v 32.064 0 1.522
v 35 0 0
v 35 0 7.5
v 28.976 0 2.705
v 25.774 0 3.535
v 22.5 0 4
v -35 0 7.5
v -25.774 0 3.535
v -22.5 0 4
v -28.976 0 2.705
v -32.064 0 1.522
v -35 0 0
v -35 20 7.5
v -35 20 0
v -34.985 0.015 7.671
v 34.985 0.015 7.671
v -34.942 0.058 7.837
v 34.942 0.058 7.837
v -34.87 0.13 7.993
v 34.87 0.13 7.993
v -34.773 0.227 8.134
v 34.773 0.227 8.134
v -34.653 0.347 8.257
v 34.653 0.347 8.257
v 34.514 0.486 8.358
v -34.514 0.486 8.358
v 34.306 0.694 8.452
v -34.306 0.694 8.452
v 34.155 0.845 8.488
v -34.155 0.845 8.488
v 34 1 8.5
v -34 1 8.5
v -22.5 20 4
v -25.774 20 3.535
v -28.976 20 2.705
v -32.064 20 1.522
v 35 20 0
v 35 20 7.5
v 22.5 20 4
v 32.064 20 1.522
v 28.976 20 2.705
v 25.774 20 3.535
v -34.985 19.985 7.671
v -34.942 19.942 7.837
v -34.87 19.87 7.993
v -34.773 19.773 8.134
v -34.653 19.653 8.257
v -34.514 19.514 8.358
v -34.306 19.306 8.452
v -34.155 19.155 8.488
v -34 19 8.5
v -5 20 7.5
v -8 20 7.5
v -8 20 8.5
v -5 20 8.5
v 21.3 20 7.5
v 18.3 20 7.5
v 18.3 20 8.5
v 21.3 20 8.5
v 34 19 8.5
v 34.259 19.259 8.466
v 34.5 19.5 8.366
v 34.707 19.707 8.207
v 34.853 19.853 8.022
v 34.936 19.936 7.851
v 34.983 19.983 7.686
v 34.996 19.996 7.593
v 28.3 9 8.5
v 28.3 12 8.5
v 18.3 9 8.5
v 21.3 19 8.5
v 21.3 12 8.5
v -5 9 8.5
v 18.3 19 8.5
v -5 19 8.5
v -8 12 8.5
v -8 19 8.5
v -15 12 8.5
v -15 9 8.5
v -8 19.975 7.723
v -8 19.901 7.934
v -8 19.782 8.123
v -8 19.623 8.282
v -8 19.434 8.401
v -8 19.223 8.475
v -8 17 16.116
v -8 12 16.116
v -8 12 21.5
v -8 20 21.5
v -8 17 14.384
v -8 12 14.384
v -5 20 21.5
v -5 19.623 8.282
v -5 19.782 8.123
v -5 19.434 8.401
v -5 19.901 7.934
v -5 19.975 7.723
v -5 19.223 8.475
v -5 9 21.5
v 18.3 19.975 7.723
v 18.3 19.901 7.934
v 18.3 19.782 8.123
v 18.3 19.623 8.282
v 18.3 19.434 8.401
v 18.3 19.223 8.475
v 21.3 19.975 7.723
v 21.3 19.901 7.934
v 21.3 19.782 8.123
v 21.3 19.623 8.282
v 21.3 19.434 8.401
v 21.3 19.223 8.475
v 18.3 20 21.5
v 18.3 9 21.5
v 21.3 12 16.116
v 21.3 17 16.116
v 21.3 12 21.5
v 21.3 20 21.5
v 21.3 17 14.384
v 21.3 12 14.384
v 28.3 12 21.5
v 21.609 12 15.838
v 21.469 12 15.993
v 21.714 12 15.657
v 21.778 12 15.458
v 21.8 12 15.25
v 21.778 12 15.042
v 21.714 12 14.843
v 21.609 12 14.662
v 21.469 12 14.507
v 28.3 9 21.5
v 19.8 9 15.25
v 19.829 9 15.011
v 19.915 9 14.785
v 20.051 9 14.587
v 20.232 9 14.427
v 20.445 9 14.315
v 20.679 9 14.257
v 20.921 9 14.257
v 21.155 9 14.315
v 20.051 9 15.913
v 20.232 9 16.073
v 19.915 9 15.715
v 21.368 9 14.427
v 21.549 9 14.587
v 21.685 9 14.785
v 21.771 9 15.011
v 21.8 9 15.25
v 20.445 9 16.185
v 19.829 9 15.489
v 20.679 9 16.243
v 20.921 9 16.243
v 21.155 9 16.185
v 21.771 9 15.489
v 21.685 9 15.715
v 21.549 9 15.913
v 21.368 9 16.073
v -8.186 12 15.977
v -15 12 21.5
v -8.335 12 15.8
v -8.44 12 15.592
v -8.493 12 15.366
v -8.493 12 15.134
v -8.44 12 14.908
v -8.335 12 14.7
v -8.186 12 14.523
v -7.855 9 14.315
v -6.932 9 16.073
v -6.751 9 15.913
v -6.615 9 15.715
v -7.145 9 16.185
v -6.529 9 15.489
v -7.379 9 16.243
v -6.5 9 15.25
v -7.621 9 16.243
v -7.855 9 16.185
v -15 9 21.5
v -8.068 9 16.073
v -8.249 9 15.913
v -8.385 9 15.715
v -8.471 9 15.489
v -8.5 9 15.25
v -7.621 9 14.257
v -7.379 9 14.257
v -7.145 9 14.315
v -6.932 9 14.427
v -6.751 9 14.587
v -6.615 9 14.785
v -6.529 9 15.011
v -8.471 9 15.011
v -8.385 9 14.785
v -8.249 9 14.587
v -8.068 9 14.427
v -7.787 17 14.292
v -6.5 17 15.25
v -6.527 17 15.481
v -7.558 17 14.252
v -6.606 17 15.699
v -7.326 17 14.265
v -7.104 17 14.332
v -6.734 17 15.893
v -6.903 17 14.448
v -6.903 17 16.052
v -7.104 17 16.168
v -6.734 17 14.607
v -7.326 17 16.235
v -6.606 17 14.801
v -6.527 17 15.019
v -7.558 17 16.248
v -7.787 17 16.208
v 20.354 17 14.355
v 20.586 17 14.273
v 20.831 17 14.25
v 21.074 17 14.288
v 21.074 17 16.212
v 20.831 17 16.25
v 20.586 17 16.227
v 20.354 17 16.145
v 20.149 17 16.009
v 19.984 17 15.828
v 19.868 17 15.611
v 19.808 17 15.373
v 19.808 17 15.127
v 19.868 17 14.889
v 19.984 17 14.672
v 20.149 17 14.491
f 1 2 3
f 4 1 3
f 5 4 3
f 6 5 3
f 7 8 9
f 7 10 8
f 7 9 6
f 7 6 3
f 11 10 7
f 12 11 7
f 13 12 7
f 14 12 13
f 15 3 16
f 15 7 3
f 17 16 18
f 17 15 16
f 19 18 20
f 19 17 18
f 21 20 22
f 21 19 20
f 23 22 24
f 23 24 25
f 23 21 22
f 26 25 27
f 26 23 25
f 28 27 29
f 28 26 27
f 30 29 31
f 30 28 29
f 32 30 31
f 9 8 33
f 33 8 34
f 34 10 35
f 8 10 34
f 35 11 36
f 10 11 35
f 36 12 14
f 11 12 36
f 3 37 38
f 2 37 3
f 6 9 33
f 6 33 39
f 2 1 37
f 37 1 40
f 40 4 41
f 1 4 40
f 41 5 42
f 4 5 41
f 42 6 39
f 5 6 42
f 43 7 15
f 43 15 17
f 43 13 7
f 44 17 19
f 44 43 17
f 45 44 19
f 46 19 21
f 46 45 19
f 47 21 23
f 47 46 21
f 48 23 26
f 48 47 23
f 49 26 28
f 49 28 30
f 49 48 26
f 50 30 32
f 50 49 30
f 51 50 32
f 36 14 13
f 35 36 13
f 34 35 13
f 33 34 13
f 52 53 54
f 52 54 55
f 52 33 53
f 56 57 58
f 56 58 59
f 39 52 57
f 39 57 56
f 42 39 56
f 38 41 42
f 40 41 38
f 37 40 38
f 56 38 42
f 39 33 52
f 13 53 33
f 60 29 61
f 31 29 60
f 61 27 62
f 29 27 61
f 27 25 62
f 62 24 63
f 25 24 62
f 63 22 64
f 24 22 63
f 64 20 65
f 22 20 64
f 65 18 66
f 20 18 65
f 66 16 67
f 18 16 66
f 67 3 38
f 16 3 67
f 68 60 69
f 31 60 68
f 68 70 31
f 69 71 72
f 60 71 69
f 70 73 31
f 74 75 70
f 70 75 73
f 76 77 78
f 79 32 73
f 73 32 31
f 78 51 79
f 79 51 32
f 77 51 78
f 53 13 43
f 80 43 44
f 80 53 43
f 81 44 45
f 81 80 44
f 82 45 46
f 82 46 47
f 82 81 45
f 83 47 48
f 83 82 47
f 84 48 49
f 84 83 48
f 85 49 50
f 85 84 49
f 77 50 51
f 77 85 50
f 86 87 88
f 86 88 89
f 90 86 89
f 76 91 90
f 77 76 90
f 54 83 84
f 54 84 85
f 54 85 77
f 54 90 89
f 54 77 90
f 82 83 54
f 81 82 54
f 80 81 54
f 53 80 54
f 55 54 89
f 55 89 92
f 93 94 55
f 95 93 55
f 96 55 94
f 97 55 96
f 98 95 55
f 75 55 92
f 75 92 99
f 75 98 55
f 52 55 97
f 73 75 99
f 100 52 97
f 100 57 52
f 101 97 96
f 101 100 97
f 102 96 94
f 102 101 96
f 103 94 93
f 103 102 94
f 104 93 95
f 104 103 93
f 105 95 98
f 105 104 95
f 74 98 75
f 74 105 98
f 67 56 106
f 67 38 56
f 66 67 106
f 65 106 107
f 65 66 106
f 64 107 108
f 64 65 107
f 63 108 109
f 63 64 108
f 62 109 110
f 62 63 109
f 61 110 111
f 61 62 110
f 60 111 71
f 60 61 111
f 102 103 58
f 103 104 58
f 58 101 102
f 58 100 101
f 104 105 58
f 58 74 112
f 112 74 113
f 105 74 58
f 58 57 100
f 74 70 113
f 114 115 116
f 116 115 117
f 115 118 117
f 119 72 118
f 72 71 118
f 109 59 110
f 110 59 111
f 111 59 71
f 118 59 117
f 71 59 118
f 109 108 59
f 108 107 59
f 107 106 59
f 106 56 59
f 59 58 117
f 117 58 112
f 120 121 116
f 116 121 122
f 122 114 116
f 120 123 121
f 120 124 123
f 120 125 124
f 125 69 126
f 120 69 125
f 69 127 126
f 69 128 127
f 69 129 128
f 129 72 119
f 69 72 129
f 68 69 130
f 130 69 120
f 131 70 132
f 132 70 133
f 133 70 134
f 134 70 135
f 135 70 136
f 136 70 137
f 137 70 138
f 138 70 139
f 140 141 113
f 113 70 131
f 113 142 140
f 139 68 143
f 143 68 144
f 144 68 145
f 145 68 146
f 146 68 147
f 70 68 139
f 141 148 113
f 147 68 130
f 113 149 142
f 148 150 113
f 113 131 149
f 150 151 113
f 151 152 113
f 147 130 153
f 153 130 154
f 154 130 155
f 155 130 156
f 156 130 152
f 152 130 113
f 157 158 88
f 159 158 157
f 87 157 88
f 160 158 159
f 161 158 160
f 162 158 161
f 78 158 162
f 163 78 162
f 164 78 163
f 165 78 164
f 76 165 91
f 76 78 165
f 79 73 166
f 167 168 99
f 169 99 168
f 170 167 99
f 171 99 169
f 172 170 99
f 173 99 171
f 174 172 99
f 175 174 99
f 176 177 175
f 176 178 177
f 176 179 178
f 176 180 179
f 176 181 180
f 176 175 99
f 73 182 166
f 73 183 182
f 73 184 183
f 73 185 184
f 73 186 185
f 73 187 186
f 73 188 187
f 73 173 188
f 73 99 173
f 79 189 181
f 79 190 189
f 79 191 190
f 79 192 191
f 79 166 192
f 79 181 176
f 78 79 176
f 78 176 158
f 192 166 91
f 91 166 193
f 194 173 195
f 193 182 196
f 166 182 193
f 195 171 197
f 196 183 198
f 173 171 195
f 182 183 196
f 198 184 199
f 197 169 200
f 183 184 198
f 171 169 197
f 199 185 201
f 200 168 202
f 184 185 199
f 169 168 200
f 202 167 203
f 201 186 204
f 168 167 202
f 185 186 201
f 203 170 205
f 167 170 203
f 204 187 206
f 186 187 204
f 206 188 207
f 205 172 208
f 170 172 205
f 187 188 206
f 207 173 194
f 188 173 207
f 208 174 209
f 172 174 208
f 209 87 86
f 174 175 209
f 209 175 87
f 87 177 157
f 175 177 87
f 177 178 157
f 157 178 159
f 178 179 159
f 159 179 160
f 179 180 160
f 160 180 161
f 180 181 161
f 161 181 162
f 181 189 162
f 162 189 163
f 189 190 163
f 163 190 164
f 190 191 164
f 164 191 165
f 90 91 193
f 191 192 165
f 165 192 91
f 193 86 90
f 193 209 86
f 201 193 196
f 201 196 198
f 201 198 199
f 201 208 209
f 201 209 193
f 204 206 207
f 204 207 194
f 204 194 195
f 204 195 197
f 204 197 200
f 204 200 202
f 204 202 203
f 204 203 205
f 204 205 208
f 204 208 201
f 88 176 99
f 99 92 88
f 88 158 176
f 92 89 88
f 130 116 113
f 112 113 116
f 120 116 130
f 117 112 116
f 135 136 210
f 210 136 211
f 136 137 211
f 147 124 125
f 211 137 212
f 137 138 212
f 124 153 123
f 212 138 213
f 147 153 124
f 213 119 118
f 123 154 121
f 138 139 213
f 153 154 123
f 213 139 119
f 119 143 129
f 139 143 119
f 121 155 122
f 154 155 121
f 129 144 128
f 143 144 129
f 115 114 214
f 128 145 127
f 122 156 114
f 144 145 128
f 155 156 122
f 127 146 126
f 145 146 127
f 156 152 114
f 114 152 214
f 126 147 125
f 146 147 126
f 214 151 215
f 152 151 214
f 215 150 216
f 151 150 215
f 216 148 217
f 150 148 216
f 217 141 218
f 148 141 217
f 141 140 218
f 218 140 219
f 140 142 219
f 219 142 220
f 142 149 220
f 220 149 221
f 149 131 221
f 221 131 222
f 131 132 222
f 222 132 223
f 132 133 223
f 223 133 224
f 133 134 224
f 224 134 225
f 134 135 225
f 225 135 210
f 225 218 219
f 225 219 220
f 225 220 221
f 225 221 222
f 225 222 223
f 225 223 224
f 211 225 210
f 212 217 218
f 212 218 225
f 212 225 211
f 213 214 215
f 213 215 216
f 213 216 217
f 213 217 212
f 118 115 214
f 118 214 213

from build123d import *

# Parameters (mm, degrees)
SKETCH_W        = 70
SKETCH_H        = 20
PAD_DEPTH       = 8.5
POCKET_DEPTH    = 20
PAD001_DEPTH    = 13
SKETCH003_R     = 1
POCKET001_DEPTH = 8
FILLET_R        = 1


with BuildPart() as part:
    # Sketch → Pad (new body)
    with BuildSketch(Plane.XY):
        with Locations((0, 10)):
            Rectangle(SKETCH_W, SKETCH_H)
    extrude(amount=PAD_DEPTH)

    # Sketch001 (on Face3 of Pad) → Pocket (cut)
    with BuildSketch(Plane.XZ):
        with BuildLine():
            Line((-22.5, 4), (22.5, 4))
            ThreePointArc((35, 0), (28.975662, 2.705192), (22.5, 4))
            Line((-35, 0), (35, 0))
            ThreePointArc((-22.5, 4), (-28.975662, 2.705192), (-35, 0))
        make_face()
    extrude(amount=-POCKET_DEPTH, mode=Mode.SUBTRACT)

    # Sketch002 (on Face6 of Pocket) → Pad001 (join)
    with BuildSketch(Plane.XY.offset(8.5)):
        Polygon((-5, 9), (-15, 9), (-15, 12), (-8, 12), (-8, 20), (-5, 20), align=None)
        Polygon((18.3, 9), (28.3, 9), (28.3, 12), (21.3, 12), (21.3, 20), (18.3, 20), align=None)
    extrude(amount=PAD001_DEPTH)

    # Sketch003 (on Face17 of Pad001) → Pocket001 (cut)
    with BuildSketch(Plane.XZ.offset(-9)):
        with Locations((-7.5, 15.25)):
            Circle(SKETCH003_R)
        with Locations((20.8, 15.25)):
            Circle(SKETCH003_R)
    extrude(amount=-POCKET001_DEPTH, mode=Mode.SUBTRACT)

    # Fillet
    fillet_edges = [part.edges().sort_by_distance(p)[0] for p in [
        (-21.5, 20, 8.5),
        (-35, 10, 8.5),
        (0, 0, 8.5),
        (35, 10, 8.5),
        (6.65, 20, 8.5),
        (28.15, 20, 8.5),
    ]]
    fillet(fillet_edges, radius=FILLET_R)


solid = part.part
